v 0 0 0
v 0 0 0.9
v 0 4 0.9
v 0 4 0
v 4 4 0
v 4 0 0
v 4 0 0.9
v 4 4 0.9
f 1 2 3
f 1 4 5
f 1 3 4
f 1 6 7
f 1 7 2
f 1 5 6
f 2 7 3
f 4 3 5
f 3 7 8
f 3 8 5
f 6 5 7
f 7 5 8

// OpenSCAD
/* Warning, this is a very basic generator with a lot of approximation 
input data : [VQFN, P6A, 4x4x0.9mm, 32, , A, C04-01115A]
generated by com.zoubworld.electronics.cad.model3d.Basic
Date : Sun Feb 15 10:50:49 CET 2026
*/

//body
color("black")
translate([0,0,0])
cube([4.0,4.0,0.9], center=false);
